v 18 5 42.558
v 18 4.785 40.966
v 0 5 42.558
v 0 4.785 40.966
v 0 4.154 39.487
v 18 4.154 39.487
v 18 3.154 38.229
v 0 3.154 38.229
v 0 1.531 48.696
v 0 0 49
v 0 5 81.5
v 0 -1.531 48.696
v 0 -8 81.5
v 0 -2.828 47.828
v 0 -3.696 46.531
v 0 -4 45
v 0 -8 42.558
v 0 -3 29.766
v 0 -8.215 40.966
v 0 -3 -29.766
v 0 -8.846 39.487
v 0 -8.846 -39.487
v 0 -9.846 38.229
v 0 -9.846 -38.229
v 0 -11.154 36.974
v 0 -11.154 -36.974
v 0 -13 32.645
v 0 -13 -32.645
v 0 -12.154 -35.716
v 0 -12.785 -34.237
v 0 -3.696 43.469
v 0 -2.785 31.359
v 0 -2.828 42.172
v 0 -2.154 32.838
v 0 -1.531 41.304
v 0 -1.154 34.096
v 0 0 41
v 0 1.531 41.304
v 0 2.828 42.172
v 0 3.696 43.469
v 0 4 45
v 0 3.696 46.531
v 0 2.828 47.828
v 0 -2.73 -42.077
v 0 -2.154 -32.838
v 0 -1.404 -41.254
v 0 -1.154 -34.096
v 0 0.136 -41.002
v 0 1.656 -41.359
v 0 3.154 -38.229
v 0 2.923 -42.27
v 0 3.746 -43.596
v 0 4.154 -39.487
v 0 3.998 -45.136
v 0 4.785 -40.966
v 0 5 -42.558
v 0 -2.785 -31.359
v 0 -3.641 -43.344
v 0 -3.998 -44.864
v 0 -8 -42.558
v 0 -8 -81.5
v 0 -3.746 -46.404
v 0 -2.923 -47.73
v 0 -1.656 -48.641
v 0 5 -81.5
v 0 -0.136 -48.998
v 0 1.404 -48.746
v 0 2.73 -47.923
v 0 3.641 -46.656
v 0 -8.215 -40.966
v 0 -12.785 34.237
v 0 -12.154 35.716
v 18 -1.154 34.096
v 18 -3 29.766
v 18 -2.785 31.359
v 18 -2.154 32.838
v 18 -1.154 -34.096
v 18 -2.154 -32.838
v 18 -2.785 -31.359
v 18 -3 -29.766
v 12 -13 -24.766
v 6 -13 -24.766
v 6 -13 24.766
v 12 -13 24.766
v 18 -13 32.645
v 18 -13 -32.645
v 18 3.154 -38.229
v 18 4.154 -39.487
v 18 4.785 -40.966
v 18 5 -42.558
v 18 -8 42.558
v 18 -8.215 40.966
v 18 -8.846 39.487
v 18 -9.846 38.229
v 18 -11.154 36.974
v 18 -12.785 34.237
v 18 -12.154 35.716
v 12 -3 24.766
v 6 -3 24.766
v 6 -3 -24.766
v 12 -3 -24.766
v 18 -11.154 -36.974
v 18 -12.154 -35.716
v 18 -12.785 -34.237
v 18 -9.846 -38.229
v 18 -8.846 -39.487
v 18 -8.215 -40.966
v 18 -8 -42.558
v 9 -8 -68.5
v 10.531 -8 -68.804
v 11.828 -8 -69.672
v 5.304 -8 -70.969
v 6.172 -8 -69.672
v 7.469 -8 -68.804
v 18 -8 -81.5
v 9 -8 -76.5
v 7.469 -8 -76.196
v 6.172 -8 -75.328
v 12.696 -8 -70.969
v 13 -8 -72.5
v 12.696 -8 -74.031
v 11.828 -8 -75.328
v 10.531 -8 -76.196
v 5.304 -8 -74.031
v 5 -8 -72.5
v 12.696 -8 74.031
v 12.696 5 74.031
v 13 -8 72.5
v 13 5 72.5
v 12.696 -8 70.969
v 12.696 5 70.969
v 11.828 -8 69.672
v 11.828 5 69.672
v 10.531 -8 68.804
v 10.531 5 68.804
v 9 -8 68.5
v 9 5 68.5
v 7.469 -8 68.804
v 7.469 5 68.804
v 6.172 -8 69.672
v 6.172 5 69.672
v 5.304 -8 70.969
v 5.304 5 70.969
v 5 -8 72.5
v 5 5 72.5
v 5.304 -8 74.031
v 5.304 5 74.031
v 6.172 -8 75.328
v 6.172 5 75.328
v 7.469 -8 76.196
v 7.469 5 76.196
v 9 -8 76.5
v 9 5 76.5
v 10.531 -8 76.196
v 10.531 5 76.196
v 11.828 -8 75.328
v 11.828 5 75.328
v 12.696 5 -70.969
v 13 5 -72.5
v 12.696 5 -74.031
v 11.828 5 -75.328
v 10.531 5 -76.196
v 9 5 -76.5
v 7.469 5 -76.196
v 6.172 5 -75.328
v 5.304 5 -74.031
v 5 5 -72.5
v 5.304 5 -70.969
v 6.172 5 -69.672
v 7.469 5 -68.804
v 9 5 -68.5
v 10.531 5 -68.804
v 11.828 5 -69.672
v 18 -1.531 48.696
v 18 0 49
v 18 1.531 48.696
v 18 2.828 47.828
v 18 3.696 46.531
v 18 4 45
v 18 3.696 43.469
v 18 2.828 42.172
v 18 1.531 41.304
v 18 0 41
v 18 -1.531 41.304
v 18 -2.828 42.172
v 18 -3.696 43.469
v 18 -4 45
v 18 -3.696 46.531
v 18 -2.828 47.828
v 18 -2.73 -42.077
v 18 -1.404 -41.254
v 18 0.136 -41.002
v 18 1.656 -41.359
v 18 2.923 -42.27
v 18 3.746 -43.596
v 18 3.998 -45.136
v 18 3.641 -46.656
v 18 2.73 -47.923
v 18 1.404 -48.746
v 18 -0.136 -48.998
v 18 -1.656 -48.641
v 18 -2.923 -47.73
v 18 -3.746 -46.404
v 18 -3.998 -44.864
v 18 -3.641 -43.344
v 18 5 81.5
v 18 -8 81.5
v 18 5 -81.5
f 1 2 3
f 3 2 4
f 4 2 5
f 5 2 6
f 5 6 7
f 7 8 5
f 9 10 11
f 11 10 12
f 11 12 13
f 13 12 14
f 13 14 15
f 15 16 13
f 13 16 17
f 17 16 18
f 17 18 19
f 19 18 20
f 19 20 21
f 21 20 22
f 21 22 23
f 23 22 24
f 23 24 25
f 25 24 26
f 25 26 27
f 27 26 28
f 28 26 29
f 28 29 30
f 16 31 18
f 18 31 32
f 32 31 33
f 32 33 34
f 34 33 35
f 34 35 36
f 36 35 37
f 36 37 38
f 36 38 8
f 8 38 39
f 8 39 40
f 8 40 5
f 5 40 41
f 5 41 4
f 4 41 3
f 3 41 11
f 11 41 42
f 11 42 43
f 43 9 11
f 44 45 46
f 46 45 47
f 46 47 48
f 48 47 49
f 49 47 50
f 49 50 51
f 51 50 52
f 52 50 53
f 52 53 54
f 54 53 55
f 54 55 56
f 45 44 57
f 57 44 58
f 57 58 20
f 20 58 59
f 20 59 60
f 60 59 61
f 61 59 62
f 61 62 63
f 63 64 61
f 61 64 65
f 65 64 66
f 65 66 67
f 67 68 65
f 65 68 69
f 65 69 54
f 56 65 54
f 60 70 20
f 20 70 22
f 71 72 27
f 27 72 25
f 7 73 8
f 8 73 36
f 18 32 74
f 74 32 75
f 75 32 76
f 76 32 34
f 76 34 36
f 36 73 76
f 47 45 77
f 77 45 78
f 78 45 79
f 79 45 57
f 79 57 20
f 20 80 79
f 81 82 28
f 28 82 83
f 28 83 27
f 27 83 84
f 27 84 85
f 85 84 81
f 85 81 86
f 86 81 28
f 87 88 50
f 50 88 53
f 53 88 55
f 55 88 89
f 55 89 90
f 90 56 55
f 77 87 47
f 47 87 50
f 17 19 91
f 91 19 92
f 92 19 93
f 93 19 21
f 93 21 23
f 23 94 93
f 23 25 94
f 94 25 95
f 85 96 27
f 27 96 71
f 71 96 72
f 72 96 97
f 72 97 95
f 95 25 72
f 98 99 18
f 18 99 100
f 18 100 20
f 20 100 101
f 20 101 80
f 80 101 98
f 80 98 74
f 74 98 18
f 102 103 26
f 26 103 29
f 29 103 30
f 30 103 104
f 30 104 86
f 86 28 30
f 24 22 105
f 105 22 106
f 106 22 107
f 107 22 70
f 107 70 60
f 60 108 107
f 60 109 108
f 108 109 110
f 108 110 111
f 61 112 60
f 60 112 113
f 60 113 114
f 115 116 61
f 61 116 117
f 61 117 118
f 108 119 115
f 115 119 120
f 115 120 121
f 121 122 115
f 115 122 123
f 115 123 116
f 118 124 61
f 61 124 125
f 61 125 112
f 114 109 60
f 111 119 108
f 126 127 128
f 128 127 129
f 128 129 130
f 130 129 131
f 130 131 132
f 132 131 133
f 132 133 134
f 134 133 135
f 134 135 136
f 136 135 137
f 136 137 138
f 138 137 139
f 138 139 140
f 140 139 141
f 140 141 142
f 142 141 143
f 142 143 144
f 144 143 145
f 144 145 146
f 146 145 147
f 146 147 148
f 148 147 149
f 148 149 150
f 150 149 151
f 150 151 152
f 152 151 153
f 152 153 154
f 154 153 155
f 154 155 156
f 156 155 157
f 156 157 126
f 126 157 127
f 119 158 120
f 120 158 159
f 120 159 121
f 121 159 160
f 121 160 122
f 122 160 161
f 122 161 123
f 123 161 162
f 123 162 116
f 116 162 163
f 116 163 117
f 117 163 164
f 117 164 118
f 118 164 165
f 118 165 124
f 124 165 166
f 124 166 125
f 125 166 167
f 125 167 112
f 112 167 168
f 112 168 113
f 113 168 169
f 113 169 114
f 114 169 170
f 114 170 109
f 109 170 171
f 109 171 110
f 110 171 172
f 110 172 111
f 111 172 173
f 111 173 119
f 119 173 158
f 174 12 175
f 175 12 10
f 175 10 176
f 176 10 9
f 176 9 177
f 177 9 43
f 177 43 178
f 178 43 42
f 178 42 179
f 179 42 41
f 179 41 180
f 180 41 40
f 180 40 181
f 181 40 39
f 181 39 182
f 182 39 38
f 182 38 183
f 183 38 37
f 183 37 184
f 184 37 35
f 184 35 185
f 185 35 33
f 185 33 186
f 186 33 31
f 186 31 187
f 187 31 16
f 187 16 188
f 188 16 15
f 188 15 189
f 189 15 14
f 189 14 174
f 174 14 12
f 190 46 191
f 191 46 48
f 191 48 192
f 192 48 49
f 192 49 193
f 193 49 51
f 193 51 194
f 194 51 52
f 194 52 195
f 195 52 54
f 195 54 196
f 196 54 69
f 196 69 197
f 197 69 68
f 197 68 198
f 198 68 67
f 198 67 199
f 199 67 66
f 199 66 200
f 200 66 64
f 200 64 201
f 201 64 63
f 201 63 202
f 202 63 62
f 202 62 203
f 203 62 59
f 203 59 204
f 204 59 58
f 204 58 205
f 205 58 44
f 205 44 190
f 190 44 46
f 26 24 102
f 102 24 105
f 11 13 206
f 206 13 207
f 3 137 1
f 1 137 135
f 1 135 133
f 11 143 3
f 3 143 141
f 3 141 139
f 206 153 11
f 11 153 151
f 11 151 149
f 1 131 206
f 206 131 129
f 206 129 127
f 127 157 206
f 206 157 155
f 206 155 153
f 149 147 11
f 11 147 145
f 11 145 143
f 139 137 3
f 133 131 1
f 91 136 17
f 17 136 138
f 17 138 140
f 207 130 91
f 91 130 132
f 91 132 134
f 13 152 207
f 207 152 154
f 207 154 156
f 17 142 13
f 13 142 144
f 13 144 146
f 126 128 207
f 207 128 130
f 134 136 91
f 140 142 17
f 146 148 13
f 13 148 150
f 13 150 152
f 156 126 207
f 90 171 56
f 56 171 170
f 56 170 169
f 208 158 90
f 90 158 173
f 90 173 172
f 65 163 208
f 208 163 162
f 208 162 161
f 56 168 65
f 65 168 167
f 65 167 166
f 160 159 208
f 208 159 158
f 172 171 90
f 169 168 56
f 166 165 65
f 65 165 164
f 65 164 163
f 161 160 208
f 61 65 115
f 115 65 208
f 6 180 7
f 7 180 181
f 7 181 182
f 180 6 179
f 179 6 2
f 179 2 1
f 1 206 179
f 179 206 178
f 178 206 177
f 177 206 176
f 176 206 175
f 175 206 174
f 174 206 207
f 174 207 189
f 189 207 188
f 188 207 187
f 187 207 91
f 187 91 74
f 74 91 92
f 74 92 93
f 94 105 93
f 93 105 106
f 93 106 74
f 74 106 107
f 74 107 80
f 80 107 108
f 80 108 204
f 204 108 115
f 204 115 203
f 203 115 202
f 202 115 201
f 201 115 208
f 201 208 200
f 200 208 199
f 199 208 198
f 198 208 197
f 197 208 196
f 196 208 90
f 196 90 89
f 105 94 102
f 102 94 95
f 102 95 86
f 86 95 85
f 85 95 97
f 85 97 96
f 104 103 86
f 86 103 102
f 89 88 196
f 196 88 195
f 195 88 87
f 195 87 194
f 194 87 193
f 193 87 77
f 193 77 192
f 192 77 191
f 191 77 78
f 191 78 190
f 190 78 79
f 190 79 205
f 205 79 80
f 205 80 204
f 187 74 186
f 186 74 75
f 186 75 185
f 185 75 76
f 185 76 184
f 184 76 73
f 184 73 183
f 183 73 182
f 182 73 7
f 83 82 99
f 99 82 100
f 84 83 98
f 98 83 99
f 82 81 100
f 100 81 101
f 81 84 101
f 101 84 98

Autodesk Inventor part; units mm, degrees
ref_plane "YZ Plane" through (0, 0, 0) normal (1, 0, 0) x (0, 1, 0)
ref_plane "XZ Plane" through (0, 0, 0) normal (0, 1, 0) x (-1, 0, 0)
ref_plane "XY Plane" through (0, 0, 0) normal (0, 0, 1) x (1, 0, 0)
sketch "Sketch1" plane through (0, 0, 0) normal (1, 0, 0) x (0, 1, 0)
  arc A0 (0, 49) -> (0, 41) centre (0, 45) ccw
  arc A1 (-1.4037, -41.2544) -> (-2.6656, -47.9824) centre (0, -45) ccw
  circle A2 centre (0, 45) radius 4
  circle A3 centre (0, -45) radius 4
  line L0 (5, 81.5) -> (-8, 81.5)
  line L1 (5, -81.5) -> (-8, -81.5)
  line L2 (5, -40) -> (-8, -40)
  line L3 (5, 40) -> (-8, 40)
  line L4 (5, 81.5) -> (5, 40)
  line L5 (5, -40) -> (5, -81.5)
  line L6 (-8, 81.5) -> (-8, 40)
  line L7 (-8, -40) -> (-8, -81.5)
  line L8 (-8, -40) -> (-13, -35.203)
  line L9 (-13, -35.203) -> (-13, 35.203)
  line L10 (-13, 35.203) -> (-8, 40)
  line L11 (5, 40) -> (-3, 32.3248)
  line L12 (-3, 32.3248) -> (-3, -32.3248)
  line L13 (-3, -32.3248) -> (5, -40)
  point P0 (0, 0)
  point P1 (0, 0)
  point P2 (-4, 45)
  point P3 (-8, -60.75)
  point P4 (-8, 60.75)
  point P5 (5, 60.75)
  dimension "d0" = 8
  dimension "d1" = 8
  dimension "d2" = 90
  dimension "d3" = 45
  dimension "d34" = 36.5
  dimension "d35" = 36.5
  dimension "d36" = 5
  dimension "d38" = 5
  dimension "d39" = 5
  dimension "d41" = 5
  dimension "d43" = 13
  dimension "d44" = 10
  dimension "d45" = 9
  dimension "d48" = 13
extrude "Extrusion1" add sketch "Sketch1" along normal blind 18
sketch "Sketch3" plane through (0, 5, 81.5) normal (0, 1, 0) x (1, 0, 0)
  circle A0 centre (9, 9) radius 4
  circle A1 centre (9, 154) radius 4
  line L0 (0, 41.5) -> (0, 0) projected
  line L1 (0, 0) -> (18, 0) projected
  line L2 (0, 163) -> (18, 163) projected
  point P0 (0, 81.5)
  dimension "d17" = 8
  dimension "d18" = 8
  dimension "d19" = 9
  dimension "d20" = 9
  dimension "d21" = 9
extrude "Extrusion3" cut sketch "Sketch3" against normal blind 27.75
fillet "Fillet1" radius 6 8 edges at (9, -8, -40) (9, -13, -35.203) (9, -13, 35.203) (9, -8, 40) (9, 5, -40) (9, -3, -32.3248) (9, -3, 32.3248) (9, 5, 40)
sketch "Sketch5" plane through (0, -3, 29.7664) normal (0, 1, 0) x (1, 0, 0)
  line L0 (6, 54.5327) -> (12, 54.5327)
  line L1 (12, 54.5327) -> (12, 5)
  line L2 (12, 5) -> (6, 5)
  line L3 (6, 5) -> (6, 54.5327)
  line L4 (0, 111.2664) -> (18, 111.2664) projected
  line L5 (0, 59.5327) -> (18, 59.5327) projected
  line L6 (18, 0) -> (0, 0) projected
  point P0 (0, 29.7664)
  point P1 (9, 54.5327)
  point P2 (9, 111.2664)
  dimension "d49" = 6
  dimension "d50" = 5
  dimension "d51" = 5
extrude "Extrusion5" cut sketch "Sketch5" against normal blind 27.75
properties part number "Frame_Mount"
